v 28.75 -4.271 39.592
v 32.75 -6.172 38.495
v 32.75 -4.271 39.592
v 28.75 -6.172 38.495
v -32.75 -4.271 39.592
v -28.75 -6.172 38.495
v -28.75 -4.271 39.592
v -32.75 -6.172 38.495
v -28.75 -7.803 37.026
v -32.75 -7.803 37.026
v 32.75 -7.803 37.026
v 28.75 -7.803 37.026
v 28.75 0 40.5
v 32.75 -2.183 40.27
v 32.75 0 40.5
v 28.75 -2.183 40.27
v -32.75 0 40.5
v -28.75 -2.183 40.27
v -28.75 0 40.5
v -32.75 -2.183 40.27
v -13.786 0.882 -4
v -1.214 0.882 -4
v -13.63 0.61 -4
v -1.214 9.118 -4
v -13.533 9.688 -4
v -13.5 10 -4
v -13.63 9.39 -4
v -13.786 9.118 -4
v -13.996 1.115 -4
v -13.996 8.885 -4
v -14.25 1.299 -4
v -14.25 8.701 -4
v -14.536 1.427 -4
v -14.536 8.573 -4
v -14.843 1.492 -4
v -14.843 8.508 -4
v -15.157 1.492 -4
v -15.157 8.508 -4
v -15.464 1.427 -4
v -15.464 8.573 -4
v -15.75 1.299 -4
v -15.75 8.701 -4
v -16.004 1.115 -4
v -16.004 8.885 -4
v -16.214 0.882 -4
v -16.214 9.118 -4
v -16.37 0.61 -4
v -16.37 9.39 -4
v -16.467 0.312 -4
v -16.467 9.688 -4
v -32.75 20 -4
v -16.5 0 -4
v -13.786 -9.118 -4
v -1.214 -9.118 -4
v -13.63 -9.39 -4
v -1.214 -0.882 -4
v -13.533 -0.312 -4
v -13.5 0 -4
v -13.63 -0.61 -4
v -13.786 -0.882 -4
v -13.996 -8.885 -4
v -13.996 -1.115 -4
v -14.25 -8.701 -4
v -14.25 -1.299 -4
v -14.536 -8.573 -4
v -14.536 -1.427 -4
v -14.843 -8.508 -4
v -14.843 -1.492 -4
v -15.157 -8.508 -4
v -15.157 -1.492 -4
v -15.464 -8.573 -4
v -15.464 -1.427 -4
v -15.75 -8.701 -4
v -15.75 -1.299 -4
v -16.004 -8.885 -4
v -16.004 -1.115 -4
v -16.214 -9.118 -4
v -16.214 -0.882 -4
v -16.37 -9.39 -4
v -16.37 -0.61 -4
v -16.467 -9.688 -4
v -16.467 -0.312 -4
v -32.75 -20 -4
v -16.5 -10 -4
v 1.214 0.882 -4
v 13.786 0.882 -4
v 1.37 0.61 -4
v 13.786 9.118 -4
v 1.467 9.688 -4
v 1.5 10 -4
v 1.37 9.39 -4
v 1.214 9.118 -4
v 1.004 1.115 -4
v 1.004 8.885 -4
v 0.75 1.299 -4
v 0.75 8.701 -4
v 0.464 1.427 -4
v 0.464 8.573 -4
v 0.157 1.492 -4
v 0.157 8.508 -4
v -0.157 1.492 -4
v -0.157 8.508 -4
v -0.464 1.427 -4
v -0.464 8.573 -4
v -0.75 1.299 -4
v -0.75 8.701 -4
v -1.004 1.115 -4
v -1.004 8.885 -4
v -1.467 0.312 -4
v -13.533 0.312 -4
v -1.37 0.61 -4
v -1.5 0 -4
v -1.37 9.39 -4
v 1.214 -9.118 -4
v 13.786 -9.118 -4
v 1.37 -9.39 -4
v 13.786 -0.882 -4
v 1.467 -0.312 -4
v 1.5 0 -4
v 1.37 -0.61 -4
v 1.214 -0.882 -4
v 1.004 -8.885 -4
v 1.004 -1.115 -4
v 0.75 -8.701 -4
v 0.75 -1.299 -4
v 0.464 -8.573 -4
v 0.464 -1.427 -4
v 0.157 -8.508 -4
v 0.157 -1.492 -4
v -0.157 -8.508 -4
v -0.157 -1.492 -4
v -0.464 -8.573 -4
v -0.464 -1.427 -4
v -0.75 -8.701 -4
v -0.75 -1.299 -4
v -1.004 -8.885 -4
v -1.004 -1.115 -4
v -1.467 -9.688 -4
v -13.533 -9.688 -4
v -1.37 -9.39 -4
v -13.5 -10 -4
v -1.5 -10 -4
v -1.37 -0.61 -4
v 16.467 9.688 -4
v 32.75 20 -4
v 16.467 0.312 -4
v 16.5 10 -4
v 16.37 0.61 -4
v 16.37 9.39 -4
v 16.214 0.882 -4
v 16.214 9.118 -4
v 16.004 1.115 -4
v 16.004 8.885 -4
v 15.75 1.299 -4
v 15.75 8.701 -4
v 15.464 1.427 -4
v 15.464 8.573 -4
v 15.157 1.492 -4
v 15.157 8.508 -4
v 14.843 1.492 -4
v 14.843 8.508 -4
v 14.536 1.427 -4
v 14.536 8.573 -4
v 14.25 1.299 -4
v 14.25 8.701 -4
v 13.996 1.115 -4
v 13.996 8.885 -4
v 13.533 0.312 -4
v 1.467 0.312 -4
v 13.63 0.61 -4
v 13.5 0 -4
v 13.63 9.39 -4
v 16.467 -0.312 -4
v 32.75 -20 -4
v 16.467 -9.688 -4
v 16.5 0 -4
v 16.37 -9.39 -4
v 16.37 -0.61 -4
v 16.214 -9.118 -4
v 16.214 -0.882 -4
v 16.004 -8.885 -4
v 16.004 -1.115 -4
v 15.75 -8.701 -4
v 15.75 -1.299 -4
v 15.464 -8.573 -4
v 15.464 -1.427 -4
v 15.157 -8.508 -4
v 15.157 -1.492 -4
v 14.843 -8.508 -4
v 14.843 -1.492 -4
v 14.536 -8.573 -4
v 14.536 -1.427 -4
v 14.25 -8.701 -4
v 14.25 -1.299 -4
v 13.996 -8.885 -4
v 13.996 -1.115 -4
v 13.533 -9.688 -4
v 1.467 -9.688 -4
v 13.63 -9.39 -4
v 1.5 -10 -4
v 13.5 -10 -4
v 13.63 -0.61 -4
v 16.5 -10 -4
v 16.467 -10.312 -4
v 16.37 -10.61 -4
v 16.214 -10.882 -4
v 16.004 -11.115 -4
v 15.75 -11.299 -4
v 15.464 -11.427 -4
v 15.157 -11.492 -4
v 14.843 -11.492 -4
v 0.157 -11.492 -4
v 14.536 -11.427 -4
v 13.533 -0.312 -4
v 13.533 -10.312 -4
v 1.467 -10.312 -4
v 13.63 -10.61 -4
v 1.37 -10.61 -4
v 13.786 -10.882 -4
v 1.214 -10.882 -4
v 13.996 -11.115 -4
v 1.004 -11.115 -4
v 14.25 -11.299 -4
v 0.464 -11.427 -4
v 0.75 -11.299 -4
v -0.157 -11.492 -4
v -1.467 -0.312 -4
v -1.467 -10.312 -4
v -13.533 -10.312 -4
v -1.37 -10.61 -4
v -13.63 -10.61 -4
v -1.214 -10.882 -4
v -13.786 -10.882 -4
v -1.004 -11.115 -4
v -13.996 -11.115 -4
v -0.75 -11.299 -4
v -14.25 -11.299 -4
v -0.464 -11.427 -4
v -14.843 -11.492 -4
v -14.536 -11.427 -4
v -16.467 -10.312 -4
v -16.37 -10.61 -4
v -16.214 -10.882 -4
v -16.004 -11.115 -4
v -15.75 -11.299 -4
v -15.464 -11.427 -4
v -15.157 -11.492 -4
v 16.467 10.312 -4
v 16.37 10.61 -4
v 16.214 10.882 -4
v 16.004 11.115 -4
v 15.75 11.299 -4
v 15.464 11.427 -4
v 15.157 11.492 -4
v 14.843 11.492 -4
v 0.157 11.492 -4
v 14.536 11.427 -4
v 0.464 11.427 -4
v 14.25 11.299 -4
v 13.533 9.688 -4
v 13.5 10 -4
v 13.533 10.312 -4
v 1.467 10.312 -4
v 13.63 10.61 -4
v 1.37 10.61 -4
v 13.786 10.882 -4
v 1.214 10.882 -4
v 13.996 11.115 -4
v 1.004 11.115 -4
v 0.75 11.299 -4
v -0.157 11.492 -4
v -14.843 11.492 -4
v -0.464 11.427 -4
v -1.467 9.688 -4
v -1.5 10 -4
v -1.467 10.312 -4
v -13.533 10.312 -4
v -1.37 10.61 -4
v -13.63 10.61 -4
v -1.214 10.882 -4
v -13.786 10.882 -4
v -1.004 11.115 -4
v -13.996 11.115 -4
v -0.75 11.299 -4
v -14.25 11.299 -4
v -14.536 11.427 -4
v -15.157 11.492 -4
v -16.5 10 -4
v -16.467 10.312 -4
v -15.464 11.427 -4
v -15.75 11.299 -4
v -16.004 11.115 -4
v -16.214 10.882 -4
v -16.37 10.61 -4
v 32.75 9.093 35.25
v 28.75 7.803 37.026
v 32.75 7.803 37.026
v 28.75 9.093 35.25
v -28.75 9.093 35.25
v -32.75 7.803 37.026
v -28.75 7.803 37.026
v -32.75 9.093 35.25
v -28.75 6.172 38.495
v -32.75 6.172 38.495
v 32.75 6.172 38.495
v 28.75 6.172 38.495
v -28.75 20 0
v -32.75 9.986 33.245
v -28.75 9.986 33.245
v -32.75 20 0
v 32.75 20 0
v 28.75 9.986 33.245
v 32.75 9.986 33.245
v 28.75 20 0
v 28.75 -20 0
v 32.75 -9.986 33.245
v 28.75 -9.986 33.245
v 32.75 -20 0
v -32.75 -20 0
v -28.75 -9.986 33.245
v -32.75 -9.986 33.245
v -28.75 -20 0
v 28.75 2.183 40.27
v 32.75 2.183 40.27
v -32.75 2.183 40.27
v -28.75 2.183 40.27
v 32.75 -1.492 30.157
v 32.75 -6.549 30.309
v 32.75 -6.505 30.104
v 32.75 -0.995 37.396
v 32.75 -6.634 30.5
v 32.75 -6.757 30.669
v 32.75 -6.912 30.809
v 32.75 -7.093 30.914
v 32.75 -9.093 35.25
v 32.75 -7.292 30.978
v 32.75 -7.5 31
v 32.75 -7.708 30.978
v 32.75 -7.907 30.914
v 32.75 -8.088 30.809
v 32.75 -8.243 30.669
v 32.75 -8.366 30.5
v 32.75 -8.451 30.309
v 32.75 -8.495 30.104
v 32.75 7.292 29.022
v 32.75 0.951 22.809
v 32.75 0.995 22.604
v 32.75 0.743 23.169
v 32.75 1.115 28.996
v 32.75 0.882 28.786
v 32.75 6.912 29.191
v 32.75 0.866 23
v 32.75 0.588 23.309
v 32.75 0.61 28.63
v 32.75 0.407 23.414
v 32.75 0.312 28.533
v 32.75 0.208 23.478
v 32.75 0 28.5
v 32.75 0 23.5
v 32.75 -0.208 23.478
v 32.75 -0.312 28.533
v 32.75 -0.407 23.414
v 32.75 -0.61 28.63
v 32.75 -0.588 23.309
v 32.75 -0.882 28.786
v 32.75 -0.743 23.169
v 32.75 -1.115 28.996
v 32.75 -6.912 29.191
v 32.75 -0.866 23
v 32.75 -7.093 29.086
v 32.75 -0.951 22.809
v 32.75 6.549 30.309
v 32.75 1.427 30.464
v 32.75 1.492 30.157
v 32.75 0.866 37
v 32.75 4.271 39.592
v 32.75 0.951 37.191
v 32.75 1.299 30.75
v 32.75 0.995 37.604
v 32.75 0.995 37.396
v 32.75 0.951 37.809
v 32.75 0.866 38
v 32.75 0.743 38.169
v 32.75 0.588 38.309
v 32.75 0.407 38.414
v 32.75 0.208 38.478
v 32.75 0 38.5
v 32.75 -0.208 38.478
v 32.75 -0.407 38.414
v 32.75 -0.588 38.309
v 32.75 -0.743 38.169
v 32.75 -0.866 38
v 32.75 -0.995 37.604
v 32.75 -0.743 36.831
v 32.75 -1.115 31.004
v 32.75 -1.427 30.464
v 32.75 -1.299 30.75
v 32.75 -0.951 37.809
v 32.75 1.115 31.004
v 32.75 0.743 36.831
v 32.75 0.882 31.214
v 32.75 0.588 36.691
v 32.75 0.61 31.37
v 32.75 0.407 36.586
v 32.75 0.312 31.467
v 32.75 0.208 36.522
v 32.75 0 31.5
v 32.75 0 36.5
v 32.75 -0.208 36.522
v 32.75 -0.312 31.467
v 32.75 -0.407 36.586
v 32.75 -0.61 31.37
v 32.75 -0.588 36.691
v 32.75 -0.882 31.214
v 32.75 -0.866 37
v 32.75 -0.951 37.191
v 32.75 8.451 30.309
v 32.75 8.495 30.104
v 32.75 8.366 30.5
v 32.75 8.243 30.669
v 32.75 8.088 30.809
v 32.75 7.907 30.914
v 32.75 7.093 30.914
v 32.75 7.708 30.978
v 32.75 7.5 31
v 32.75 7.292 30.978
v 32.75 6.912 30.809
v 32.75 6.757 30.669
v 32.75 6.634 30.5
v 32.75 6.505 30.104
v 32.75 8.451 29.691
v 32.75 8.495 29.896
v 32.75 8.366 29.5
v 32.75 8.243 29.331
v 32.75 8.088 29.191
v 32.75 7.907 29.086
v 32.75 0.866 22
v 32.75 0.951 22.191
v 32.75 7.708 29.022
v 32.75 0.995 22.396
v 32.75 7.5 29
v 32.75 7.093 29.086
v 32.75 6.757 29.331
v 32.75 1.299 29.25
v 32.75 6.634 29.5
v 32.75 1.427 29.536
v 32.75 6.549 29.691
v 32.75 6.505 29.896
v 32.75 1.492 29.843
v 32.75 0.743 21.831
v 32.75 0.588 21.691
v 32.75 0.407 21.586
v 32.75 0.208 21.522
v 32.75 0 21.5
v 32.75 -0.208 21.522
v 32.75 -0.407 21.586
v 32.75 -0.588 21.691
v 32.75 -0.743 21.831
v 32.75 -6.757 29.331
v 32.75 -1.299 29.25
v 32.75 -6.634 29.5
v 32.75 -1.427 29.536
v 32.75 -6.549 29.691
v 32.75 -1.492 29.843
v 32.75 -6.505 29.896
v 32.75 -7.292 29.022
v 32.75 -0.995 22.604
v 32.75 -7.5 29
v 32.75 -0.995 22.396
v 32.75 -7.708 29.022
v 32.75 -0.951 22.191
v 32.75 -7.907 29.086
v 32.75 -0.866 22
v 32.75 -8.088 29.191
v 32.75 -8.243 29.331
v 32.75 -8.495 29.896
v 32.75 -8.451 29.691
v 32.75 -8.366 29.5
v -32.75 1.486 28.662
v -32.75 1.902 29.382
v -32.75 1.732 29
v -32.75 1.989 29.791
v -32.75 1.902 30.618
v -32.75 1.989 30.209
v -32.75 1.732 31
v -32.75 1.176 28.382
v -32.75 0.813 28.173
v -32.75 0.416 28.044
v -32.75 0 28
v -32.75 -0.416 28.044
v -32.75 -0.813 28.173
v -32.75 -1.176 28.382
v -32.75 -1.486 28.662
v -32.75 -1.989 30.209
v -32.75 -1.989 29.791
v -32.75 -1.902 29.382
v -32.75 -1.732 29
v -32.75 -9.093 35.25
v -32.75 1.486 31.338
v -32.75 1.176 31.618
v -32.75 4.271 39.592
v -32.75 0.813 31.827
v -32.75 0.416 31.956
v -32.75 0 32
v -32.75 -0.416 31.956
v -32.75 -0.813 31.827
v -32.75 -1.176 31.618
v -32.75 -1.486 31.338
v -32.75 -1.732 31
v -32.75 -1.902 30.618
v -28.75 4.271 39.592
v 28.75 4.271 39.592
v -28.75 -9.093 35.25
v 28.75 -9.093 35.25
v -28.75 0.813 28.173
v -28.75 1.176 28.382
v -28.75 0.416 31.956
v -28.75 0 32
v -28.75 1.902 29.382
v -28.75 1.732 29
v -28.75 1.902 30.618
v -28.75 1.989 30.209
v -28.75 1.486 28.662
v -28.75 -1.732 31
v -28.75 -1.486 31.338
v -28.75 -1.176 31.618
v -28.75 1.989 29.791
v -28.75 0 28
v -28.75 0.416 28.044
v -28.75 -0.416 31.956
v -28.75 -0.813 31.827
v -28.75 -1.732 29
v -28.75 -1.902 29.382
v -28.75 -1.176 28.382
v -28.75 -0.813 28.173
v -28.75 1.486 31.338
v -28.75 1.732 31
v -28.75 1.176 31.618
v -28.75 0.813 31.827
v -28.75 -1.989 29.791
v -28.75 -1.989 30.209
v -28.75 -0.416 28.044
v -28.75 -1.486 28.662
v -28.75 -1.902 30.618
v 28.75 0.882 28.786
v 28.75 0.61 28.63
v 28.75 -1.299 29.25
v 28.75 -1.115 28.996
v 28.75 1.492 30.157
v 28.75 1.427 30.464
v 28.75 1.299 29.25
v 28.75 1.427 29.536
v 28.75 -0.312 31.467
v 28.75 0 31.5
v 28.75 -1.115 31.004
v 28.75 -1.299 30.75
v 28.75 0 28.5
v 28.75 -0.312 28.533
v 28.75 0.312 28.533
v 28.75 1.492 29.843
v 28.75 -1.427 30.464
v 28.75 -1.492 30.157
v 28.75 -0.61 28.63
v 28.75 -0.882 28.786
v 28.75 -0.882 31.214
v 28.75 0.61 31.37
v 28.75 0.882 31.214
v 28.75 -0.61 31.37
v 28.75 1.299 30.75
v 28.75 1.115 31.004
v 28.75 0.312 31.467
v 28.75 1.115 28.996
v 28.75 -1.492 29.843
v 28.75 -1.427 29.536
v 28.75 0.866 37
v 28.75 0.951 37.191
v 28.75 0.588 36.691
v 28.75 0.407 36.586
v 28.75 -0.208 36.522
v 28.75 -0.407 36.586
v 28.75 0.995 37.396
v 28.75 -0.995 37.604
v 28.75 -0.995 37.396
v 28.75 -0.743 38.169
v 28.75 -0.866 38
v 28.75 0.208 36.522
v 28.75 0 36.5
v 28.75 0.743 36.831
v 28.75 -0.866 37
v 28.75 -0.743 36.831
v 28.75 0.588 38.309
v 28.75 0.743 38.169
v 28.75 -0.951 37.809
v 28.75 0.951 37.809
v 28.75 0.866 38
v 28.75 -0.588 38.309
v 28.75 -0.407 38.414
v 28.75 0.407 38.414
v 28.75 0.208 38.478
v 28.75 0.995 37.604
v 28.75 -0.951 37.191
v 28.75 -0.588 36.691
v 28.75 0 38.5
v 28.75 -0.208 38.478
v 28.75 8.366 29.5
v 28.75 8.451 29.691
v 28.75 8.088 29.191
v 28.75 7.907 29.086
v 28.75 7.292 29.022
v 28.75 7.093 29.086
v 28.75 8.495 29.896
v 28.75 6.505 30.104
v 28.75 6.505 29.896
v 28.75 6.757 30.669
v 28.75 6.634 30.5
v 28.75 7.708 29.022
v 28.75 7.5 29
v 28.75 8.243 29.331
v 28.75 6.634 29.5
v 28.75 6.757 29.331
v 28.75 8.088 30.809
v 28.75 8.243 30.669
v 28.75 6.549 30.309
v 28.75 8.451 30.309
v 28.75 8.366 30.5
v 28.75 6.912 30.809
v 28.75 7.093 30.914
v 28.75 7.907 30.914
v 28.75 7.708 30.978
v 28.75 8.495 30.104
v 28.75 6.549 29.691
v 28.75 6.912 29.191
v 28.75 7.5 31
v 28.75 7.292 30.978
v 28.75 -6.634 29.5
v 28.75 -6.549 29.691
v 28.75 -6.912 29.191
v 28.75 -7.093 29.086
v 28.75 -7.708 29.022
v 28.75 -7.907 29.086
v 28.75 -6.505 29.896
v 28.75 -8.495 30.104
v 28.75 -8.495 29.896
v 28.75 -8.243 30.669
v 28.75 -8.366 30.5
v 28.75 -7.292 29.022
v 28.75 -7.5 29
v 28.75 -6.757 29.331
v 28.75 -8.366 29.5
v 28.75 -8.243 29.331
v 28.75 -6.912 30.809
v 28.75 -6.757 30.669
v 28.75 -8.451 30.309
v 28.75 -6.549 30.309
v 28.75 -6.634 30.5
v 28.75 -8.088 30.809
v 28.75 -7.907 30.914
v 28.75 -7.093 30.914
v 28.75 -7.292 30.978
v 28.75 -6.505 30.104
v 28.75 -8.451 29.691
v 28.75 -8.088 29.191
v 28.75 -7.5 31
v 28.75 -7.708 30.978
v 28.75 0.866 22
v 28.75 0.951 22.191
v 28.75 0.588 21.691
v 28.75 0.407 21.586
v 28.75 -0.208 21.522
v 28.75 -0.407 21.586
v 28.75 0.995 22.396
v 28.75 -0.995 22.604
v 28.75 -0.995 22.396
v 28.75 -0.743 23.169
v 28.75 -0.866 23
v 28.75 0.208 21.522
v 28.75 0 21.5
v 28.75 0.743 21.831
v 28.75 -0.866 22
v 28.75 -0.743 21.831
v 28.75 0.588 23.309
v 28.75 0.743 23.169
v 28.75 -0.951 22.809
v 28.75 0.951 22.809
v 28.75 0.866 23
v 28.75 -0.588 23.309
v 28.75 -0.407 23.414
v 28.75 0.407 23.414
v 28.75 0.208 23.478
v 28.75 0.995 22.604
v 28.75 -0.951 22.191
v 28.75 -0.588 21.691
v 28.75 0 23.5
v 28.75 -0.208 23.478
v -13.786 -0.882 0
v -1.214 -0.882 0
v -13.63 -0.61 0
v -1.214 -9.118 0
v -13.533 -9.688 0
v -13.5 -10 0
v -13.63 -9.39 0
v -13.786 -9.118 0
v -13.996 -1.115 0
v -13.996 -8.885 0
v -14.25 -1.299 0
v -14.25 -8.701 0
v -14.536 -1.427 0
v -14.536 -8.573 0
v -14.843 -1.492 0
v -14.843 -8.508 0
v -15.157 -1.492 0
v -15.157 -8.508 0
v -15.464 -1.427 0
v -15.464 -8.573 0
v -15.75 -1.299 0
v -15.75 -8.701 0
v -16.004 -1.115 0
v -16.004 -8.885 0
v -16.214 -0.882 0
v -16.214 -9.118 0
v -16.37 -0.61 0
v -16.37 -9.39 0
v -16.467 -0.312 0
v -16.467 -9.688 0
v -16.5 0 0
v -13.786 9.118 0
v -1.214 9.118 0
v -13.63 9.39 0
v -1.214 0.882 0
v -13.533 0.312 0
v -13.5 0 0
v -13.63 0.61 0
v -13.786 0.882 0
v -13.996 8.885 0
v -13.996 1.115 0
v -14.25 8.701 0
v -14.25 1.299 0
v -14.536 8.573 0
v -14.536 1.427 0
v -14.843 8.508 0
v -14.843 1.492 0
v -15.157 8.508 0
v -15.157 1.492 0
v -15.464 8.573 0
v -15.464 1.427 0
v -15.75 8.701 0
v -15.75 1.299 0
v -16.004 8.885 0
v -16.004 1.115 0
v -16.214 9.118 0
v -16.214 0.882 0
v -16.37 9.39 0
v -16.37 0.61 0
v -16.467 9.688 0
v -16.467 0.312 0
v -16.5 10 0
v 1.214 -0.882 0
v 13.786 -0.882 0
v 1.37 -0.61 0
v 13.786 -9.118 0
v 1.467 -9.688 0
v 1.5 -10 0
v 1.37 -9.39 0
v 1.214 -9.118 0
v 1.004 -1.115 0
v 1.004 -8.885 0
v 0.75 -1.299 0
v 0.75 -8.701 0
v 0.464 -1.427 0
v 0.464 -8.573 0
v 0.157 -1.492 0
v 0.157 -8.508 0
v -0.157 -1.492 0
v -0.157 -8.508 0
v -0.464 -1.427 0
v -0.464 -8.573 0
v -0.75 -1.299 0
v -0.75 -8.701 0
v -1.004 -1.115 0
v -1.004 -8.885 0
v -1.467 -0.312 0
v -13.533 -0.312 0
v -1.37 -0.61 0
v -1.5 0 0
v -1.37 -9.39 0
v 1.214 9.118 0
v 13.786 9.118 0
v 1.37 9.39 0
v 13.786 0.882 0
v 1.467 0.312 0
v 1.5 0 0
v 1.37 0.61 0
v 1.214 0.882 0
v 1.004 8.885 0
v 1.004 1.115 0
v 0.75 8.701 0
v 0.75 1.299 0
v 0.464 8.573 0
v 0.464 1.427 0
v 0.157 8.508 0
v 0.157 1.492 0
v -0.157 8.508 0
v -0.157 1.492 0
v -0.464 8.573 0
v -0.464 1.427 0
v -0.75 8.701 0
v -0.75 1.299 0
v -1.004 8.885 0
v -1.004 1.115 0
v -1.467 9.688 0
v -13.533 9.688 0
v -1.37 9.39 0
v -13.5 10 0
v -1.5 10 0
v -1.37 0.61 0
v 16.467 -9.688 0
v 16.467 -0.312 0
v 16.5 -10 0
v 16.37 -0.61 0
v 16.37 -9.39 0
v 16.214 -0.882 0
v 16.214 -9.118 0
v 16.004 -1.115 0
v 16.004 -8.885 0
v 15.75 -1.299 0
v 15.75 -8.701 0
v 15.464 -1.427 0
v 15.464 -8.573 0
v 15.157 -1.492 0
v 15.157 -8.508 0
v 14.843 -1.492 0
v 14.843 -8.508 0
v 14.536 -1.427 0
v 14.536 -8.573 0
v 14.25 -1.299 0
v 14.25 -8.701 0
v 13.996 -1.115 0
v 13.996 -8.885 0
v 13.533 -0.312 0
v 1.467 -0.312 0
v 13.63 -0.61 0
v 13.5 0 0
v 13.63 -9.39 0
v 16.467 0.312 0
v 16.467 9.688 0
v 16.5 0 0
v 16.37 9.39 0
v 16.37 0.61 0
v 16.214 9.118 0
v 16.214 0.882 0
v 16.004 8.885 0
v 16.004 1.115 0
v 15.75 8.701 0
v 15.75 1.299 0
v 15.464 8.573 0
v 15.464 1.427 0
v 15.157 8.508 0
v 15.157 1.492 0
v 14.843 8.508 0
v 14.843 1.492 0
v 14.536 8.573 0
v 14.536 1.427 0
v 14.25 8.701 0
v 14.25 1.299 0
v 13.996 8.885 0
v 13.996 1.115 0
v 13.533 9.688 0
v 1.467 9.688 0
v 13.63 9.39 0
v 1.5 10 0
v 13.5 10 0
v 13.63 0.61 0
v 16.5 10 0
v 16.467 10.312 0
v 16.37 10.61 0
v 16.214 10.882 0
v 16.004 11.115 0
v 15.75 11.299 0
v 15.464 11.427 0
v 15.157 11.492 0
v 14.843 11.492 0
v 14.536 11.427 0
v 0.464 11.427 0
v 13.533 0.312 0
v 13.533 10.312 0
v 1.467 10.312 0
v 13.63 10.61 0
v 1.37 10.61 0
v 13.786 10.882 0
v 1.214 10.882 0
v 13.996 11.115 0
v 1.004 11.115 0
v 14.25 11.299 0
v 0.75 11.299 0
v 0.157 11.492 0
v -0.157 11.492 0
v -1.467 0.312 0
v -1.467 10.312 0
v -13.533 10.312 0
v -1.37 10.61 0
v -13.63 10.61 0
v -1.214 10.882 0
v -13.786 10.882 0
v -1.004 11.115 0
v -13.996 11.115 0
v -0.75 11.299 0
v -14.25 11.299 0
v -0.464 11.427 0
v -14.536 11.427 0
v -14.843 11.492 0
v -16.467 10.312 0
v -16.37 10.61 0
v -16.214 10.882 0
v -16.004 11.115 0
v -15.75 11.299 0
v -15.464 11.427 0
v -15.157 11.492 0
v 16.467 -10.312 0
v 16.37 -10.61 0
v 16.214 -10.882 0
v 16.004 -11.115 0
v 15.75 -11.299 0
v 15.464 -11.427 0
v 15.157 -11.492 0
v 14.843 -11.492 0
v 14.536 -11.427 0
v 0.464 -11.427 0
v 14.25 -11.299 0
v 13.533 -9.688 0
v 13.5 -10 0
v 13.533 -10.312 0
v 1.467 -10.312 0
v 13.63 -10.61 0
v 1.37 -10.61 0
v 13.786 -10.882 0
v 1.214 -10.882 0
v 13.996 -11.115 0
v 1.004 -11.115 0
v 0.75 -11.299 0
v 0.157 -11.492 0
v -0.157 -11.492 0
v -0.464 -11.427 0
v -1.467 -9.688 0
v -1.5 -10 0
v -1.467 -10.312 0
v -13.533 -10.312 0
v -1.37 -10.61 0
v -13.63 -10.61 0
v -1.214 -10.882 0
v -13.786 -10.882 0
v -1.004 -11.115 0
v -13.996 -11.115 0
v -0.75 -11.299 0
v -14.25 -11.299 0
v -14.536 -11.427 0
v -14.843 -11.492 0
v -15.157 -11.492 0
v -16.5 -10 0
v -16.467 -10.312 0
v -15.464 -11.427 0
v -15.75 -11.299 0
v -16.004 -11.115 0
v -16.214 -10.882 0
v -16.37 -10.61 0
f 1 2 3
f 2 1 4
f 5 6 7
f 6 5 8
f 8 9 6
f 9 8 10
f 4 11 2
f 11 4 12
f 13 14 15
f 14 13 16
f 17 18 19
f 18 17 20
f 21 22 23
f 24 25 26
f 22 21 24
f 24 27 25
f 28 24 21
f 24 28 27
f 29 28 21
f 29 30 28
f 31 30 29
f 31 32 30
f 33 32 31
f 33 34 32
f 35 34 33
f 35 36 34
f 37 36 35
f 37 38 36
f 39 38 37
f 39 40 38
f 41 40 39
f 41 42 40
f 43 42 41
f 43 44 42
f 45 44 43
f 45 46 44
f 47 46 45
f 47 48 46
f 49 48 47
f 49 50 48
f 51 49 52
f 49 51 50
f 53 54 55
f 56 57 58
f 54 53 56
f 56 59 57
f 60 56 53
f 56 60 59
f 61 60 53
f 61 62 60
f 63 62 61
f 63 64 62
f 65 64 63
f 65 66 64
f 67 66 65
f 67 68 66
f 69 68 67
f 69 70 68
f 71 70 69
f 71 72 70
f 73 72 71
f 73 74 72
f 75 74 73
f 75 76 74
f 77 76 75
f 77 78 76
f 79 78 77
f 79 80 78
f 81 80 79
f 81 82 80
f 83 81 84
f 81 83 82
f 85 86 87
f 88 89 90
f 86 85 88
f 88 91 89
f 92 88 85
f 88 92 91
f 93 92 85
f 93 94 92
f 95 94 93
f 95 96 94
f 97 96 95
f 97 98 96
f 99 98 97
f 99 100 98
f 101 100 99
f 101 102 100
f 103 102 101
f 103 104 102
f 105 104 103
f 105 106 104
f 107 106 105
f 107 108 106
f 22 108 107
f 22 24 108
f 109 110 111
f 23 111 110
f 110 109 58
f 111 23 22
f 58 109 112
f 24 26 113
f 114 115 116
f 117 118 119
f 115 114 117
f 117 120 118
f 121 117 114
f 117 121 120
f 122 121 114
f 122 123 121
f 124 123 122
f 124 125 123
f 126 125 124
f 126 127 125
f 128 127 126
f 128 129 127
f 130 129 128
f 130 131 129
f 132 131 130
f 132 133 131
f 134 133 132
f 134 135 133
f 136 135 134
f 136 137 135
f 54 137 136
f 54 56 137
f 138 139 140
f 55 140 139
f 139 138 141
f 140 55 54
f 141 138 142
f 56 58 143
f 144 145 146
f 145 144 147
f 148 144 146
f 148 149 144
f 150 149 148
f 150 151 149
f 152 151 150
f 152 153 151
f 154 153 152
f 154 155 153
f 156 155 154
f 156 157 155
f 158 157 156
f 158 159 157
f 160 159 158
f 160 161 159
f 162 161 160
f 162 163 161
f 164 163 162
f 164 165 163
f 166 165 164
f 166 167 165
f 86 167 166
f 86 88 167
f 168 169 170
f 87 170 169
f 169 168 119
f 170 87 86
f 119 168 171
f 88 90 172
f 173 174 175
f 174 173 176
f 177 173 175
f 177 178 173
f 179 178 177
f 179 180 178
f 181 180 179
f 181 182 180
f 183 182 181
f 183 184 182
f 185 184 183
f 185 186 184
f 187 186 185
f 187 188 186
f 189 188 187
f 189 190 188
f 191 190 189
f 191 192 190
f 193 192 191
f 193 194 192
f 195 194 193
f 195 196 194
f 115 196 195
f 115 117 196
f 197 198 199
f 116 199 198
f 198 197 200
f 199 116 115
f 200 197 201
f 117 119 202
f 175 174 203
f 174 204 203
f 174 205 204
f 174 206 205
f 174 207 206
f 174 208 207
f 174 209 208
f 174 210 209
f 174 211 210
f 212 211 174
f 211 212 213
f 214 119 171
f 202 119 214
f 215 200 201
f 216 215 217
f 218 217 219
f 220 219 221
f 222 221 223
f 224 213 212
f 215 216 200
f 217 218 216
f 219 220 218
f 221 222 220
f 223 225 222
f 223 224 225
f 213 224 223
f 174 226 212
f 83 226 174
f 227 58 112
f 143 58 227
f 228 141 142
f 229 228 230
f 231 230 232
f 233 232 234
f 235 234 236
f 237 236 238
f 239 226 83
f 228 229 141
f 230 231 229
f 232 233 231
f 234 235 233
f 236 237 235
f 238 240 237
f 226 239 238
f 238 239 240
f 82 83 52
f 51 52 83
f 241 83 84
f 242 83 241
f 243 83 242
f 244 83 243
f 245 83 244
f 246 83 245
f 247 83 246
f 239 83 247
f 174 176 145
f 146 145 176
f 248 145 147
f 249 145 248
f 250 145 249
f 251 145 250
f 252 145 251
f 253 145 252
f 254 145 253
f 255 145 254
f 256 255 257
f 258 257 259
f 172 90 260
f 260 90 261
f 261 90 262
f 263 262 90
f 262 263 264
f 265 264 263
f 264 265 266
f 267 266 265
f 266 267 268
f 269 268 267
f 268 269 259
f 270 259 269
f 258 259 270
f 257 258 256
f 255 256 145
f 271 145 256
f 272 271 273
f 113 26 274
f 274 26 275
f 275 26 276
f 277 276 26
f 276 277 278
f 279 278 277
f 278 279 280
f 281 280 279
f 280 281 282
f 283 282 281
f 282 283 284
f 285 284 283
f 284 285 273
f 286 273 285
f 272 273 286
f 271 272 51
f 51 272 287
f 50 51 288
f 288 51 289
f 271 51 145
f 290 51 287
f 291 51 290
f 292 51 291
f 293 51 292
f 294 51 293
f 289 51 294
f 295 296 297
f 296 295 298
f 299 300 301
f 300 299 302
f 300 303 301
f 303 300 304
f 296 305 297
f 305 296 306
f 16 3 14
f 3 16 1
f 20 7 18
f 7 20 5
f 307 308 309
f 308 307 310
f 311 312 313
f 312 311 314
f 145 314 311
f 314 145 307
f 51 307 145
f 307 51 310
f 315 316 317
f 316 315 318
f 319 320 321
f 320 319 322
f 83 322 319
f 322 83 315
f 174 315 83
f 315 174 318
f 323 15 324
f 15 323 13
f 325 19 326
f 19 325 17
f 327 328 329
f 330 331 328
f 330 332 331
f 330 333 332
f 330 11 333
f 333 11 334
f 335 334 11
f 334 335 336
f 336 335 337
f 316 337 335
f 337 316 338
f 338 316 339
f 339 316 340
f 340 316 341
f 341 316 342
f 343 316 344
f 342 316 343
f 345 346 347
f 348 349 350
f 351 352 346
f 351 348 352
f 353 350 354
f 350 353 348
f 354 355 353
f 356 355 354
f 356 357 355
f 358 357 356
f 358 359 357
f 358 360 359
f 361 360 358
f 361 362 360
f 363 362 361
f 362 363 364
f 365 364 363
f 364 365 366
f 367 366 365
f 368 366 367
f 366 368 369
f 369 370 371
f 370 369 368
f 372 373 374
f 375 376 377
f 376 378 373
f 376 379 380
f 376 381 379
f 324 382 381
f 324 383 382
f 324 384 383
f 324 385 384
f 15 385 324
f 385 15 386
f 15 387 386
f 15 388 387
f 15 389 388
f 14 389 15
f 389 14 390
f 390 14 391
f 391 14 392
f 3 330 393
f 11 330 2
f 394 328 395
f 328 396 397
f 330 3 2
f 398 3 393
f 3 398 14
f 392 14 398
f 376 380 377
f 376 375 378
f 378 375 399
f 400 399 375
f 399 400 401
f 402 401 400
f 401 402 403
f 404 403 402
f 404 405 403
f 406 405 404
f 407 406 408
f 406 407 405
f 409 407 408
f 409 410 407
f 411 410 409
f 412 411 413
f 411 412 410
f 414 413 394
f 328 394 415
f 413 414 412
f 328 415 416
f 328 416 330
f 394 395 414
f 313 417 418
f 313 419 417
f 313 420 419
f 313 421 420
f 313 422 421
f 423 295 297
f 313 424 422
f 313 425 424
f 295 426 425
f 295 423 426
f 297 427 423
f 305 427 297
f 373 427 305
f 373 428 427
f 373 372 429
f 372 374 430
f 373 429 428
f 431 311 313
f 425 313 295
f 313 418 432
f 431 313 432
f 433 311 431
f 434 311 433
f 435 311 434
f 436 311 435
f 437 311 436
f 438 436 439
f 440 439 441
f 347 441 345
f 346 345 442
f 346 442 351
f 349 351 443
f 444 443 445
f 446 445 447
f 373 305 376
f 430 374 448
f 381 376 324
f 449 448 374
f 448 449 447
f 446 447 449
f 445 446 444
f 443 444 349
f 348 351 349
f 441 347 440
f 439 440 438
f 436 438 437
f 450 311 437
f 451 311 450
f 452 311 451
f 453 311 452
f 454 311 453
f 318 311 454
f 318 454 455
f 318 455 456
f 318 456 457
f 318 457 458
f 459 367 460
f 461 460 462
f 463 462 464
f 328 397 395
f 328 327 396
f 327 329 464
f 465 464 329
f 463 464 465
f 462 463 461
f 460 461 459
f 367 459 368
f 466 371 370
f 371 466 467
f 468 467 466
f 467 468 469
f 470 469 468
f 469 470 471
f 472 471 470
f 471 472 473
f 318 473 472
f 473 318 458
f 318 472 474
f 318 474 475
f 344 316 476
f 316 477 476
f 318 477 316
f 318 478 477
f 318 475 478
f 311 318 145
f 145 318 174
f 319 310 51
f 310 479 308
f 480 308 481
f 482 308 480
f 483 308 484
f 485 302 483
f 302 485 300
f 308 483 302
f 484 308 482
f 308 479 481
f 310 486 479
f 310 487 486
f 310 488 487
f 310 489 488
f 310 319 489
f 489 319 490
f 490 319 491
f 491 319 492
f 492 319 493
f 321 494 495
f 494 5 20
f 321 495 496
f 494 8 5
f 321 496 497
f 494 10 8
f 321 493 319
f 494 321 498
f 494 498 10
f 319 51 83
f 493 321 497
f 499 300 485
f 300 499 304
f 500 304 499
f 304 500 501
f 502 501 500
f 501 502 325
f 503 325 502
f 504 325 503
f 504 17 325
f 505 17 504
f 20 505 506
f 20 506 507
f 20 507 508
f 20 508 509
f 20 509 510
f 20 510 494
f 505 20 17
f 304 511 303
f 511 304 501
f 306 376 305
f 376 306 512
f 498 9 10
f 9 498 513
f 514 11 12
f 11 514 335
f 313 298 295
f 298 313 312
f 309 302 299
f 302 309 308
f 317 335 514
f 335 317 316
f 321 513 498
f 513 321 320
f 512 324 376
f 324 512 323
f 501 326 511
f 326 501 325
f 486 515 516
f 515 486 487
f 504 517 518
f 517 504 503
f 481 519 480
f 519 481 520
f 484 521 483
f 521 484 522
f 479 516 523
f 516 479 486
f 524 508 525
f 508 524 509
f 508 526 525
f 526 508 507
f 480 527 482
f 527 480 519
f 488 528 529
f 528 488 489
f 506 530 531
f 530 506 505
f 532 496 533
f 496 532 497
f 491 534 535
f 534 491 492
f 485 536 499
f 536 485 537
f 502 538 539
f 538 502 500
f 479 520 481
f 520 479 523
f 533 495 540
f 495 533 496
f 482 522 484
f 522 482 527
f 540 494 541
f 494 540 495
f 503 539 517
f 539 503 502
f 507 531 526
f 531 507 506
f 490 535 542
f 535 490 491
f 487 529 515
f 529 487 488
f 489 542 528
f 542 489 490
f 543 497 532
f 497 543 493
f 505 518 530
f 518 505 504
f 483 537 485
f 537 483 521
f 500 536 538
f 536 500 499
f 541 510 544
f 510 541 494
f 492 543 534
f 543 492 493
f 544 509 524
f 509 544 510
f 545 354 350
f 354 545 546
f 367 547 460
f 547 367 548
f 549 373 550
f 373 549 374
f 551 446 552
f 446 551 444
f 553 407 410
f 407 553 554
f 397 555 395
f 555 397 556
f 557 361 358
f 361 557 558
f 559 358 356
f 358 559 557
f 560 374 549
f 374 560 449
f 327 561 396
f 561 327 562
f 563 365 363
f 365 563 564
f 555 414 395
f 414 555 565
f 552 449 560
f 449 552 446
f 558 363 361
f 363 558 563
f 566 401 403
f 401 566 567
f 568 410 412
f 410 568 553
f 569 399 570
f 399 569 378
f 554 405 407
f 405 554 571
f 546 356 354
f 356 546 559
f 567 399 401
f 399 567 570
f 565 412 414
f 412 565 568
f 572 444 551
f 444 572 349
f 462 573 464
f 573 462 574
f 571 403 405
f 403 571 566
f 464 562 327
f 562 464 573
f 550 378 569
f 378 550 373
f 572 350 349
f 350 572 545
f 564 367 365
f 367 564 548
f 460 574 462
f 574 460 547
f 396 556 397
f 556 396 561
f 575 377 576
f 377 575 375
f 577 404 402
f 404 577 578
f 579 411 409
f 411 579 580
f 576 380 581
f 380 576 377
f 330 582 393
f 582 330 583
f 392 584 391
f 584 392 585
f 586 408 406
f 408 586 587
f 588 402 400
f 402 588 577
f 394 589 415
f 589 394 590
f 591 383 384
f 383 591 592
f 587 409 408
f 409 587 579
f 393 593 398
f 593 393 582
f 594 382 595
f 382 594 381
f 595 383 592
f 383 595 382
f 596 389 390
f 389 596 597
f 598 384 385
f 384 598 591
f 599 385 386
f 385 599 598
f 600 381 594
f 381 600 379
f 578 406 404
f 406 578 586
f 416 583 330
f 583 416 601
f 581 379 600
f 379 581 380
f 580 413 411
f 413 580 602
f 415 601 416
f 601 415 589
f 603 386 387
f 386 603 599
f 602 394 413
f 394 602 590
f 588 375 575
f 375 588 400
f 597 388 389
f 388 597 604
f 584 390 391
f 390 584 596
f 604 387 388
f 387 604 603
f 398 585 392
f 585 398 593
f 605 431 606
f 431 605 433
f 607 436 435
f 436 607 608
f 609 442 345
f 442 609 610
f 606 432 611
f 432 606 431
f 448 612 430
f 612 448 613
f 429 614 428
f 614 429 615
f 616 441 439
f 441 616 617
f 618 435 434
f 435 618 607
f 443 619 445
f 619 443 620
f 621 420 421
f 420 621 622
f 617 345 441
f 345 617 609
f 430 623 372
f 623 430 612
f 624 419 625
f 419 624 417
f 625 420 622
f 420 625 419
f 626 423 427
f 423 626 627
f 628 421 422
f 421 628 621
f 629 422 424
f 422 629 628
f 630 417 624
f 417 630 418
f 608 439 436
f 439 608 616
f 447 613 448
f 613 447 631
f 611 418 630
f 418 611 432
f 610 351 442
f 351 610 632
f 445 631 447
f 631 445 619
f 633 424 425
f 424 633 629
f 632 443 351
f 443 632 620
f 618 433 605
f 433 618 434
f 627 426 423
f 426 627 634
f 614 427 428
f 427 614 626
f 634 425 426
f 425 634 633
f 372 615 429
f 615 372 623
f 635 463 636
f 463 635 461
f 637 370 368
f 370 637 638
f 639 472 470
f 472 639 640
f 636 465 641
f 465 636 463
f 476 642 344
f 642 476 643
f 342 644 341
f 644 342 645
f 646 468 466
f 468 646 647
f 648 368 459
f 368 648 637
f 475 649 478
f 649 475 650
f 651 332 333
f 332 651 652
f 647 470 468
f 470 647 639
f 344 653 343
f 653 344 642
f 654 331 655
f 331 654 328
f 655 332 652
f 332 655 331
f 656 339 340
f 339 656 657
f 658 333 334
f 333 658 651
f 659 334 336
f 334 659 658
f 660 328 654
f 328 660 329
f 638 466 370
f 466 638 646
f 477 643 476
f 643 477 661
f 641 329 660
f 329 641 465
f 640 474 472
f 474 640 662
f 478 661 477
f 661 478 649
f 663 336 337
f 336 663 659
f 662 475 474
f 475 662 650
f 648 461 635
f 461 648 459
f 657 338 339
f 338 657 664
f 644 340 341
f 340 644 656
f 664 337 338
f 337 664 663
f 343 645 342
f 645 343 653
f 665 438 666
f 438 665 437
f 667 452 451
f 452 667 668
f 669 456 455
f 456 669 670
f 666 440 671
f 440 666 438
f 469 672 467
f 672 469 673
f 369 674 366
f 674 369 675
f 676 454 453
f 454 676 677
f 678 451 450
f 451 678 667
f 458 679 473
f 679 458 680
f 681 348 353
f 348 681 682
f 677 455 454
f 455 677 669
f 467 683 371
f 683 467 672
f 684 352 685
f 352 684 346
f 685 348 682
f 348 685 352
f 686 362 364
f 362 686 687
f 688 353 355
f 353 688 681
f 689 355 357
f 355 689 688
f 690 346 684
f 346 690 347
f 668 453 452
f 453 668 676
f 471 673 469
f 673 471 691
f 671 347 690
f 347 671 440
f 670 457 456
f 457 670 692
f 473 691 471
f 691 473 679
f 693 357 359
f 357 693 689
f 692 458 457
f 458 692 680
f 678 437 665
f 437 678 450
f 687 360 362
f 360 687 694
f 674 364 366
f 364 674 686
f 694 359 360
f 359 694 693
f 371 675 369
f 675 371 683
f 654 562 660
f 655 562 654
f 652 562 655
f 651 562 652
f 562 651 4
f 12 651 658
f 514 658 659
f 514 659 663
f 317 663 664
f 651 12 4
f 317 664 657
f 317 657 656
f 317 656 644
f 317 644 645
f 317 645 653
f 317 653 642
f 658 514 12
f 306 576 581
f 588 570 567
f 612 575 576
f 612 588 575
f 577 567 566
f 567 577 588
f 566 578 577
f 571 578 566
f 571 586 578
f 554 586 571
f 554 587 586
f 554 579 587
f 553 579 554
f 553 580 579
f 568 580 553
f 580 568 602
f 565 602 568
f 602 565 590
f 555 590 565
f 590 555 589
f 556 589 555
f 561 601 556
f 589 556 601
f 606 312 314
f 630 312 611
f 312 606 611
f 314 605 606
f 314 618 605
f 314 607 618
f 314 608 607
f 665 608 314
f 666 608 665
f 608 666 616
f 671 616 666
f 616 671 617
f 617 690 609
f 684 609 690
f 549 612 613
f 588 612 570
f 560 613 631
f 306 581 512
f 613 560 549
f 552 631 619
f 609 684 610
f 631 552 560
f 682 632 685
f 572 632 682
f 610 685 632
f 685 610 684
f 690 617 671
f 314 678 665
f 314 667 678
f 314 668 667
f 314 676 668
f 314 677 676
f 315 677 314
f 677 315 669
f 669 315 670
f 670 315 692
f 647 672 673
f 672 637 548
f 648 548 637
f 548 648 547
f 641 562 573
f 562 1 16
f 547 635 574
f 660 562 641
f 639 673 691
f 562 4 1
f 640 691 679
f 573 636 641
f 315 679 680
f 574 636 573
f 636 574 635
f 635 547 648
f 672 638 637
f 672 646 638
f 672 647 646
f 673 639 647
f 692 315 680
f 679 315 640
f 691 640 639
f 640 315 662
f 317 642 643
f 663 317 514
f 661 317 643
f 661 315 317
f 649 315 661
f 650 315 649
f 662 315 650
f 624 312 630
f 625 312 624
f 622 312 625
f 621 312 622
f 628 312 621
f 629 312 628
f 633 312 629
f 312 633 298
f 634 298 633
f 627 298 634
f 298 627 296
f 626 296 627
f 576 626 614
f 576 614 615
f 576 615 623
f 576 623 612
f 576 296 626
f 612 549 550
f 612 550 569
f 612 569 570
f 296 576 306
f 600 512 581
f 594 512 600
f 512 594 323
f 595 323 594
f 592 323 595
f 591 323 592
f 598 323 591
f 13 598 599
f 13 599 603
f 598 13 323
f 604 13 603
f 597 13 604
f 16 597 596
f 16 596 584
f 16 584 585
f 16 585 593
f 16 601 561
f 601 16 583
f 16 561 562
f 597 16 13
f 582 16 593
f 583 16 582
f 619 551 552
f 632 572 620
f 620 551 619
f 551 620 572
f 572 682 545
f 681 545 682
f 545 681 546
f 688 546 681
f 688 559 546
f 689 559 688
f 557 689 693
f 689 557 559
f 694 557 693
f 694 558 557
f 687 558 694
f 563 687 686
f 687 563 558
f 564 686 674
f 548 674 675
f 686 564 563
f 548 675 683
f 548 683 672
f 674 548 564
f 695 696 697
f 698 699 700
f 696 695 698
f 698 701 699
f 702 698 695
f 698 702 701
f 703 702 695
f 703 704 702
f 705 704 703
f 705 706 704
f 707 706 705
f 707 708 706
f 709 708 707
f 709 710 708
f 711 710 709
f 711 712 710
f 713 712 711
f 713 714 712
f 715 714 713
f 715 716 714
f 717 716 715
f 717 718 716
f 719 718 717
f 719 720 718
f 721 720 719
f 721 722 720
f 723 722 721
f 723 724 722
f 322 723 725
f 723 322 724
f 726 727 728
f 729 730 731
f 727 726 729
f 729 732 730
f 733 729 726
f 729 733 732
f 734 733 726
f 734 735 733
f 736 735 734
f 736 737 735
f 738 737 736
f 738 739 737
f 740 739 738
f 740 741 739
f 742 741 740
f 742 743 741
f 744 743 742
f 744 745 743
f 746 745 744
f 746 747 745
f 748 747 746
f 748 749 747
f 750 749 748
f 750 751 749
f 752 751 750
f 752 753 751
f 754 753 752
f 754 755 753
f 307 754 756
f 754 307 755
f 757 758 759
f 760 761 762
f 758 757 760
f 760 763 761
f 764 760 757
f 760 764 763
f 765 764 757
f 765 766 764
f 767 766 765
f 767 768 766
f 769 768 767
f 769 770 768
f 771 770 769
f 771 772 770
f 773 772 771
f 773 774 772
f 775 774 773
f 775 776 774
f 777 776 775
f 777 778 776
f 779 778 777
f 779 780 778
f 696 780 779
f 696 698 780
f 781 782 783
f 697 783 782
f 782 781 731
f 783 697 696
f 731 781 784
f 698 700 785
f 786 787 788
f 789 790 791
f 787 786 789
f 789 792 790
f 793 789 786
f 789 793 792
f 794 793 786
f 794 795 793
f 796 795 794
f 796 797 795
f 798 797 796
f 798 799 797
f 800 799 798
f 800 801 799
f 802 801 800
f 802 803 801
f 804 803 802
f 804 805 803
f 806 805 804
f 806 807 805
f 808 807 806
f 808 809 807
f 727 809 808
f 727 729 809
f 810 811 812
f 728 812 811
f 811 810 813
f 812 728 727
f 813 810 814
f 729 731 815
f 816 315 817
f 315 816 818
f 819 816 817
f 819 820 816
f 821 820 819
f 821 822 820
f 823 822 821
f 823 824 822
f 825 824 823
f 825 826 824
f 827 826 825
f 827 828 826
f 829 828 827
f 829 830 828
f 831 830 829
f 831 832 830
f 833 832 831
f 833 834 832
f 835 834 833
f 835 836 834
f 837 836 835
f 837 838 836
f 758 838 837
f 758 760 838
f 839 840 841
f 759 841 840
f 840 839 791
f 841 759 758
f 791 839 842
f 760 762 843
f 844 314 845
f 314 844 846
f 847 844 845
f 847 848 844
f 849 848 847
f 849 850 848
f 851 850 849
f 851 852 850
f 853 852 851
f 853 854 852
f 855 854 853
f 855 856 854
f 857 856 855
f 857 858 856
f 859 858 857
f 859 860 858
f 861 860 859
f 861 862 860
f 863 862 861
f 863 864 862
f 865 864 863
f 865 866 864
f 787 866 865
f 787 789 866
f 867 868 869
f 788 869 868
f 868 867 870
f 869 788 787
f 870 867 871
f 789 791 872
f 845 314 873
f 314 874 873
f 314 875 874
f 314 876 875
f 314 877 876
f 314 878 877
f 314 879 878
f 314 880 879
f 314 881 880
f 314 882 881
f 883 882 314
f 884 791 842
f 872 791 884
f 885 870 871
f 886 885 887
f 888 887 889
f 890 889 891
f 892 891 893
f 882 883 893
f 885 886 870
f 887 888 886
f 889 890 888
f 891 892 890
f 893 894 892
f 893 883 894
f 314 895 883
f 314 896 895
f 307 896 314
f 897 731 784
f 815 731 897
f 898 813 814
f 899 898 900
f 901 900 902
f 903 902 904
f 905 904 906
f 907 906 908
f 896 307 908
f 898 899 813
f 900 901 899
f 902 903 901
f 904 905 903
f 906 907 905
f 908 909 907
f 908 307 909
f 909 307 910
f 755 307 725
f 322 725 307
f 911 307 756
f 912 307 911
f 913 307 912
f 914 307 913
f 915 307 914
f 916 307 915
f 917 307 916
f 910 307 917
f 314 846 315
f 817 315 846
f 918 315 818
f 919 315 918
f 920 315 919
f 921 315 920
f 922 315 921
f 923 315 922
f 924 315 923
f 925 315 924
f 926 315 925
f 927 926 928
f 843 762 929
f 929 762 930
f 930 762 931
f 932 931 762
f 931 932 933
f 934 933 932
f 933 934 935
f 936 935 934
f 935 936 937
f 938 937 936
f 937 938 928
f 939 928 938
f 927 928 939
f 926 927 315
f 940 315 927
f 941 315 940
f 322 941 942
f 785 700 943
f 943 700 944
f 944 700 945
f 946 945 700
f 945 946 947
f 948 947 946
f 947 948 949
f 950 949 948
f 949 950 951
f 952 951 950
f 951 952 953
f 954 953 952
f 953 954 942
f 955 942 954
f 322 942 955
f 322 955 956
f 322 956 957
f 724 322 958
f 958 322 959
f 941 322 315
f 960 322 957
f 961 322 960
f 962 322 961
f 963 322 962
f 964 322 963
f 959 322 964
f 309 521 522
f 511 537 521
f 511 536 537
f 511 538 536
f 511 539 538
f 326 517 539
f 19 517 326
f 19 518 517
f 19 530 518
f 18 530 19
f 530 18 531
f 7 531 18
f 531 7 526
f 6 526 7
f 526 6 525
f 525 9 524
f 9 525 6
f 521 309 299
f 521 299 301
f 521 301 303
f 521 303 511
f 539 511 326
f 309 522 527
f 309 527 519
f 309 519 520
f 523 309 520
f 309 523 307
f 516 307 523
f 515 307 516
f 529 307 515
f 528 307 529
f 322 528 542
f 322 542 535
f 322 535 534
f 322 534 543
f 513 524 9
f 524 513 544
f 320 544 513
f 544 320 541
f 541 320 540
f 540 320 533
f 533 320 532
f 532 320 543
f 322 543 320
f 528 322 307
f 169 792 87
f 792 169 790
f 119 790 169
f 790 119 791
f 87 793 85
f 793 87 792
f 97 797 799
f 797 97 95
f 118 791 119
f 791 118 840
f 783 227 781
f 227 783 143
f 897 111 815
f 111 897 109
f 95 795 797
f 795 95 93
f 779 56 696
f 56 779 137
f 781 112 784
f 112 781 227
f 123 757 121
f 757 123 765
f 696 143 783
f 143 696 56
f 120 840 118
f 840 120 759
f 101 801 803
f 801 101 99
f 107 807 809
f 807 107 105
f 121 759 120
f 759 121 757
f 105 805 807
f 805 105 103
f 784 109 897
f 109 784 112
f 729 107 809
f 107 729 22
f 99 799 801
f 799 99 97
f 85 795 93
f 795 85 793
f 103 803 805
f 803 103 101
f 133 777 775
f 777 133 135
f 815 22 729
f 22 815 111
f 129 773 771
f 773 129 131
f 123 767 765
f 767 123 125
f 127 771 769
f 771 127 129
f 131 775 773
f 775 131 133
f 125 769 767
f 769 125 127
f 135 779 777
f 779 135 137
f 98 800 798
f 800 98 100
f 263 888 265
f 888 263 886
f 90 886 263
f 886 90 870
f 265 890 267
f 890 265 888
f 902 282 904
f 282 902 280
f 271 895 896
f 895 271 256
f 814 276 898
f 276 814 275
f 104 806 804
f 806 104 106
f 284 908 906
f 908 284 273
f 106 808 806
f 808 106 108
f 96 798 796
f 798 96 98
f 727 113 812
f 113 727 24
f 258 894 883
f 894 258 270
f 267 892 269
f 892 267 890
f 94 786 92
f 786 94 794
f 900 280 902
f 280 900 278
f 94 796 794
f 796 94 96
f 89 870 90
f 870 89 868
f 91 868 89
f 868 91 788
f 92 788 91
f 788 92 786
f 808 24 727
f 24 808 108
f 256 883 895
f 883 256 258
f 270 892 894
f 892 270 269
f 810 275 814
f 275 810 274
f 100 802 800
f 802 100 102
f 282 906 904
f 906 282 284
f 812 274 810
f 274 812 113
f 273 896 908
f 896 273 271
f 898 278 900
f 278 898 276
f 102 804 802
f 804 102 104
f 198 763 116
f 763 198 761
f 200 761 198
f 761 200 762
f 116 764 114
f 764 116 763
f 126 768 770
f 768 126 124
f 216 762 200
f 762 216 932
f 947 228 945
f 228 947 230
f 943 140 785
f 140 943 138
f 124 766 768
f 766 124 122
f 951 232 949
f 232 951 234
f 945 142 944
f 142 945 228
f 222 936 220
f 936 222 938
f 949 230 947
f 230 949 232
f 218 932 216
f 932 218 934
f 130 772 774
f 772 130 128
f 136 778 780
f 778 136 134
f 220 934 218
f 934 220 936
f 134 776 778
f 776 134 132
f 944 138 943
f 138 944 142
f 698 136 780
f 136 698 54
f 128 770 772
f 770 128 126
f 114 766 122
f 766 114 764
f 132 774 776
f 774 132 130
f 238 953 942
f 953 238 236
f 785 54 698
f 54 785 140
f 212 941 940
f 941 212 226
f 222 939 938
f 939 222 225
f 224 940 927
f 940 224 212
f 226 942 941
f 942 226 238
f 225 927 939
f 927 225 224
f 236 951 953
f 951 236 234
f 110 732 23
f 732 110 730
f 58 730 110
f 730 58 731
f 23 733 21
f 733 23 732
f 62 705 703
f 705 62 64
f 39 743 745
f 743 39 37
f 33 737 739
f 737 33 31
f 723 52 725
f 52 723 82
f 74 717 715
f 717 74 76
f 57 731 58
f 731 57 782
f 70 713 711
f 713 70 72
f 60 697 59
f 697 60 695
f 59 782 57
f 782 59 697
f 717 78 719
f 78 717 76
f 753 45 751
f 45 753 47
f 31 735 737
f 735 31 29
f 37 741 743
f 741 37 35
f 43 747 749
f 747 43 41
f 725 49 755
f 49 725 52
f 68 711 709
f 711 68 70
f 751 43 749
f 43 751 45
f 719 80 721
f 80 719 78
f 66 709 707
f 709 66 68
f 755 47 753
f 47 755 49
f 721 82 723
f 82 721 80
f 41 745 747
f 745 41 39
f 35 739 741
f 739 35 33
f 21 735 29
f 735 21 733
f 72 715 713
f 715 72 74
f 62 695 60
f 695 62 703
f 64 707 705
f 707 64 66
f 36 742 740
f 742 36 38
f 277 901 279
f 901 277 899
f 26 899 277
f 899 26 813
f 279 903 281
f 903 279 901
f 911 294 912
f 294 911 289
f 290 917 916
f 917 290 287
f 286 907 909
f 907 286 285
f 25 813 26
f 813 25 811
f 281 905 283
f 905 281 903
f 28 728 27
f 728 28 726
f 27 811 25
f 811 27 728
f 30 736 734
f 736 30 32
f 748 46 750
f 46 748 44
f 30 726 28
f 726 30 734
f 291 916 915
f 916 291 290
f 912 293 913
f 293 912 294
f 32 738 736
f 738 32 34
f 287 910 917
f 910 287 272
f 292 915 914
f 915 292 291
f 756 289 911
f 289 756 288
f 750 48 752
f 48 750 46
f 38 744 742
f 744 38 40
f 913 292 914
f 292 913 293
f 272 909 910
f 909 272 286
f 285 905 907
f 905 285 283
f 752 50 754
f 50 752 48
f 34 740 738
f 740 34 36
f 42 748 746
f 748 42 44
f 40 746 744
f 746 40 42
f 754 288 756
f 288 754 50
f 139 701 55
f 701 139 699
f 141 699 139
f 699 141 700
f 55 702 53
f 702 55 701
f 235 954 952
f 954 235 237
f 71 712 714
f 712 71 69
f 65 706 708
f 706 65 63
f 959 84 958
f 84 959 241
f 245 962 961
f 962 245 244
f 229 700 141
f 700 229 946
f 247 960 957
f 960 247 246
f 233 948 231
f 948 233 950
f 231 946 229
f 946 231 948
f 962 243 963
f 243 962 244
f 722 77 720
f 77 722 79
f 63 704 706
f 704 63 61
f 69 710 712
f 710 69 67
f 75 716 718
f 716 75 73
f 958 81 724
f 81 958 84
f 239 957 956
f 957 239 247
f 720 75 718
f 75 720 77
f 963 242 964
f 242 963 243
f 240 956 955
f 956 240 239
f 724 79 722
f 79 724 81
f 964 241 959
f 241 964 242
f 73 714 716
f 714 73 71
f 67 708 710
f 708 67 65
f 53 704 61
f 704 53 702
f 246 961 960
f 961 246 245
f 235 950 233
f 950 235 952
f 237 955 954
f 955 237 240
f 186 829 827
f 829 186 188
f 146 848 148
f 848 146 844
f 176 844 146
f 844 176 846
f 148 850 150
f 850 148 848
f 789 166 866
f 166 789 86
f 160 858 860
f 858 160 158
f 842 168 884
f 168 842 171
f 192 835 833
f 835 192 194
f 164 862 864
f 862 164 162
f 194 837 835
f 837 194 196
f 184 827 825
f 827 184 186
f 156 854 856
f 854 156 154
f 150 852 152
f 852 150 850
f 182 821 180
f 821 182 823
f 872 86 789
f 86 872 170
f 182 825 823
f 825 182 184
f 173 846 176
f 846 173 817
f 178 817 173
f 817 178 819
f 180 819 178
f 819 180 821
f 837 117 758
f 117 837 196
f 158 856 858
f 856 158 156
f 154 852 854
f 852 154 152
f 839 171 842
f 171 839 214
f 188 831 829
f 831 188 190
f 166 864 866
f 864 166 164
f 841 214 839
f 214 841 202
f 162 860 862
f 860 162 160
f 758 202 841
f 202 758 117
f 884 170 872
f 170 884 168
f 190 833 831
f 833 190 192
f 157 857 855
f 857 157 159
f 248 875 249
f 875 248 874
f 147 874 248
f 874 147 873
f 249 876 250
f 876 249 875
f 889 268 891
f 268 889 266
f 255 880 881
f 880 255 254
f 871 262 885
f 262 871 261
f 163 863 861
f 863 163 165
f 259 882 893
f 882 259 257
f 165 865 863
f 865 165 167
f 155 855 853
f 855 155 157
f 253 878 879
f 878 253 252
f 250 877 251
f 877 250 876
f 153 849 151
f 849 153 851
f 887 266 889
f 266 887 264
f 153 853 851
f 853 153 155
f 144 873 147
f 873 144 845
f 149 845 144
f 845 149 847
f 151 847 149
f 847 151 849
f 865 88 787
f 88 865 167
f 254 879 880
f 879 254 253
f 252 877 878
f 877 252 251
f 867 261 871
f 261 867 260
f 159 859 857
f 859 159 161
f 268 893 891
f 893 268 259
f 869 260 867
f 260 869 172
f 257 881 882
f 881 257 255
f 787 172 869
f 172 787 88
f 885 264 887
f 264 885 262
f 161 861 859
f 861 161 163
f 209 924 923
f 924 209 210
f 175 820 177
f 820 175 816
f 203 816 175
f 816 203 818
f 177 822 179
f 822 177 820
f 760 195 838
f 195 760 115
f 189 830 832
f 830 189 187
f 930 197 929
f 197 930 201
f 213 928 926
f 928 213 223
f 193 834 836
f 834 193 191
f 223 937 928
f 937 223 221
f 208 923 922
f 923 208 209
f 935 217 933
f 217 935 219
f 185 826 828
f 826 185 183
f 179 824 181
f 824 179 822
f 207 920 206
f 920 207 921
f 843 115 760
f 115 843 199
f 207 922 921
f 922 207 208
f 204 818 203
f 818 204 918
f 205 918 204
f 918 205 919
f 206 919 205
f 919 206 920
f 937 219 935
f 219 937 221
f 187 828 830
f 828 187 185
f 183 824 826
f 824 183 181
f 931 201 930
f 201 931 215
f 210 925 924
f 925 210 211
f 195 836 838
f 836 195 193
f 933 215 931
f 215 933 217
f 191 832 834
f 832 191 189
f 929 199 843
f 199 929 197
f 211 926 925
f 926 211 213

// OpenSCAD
l = 40.0;
b = 57.5;
d = 4.0;


bout = b + 2*d;

difference(){
  hull() {
    translate([-bout/2,-l/2,-d])cube([bout,l,d]);
    translate([-bout/2,0,30])rotate([0,90,0])cylinder(h=bout, r=10.5,$fn=30);
  }
 
  translate([-bout/2-1,0,30])rotate([0,90,0])cylinder(h=20, r=2.0,$fn=30);
  translate([ bout/2+1-20,0,30])rotate([0,90,0])cylinder(h=20, r=1.5,$fn=30);
  
  translate([ bout/2+1-20,0,30+7.5])rotate([0,90,0])cylinder(h=20, r=1,$fn=30);
  translate([ bout/2+1-20,+7.5,30])rotate([0,90,0])cylinder(h=20, r=1,$fn=30);
  translate([ bout/2+1-20,-7.5,30])rotate([0,90,0])cylinder(h=20, r=1,$fn=30);
  translate([ bout/2+1-20,0,30-7.5])rotate([0,90,0])cylinder(h=20, r=1,$fn=30);
  
  translate([-b/2,-l/2,0])cube([b,l,60]);
  
  translate([ 0,0,-5])rotate([0,0,0])cylinder(h=20, r=1.5,$fn=30);
  translate([ 0,10,-5])rotate([0,0,0])cylinder(h=20, r=1.5,$fn=30);
  translate([ 0,-10,-5])rotate([0,0,0])cylinder(h=20, r=1.5,$fn=30);
  
  translate([ -15,0,-5])rotate([0,0,0])cylinder(h=20, r=1.5,$fn=30);
  translate([ -15,10,-5])rotate([0,0,0])cylinder(h=20, r=1.5,$fn=30);
  translate([ -15,-10,-5])rotate([0,0,0])cylinder(h=20, r=1.5,$fn=30);
  
  translate([ 15,0,-5])rotate([0,0,0])cylinder(h=20, r=1.5,$fn=30);
  translate([ 15,10,-5])rotate([0,0,0])cylinder(h=20, r=1.5,$fn=30);
  translate([ 15,-10,-5])rotate([0,0,0])cylinder(h=20, r=1.5,$fn=30);
  
}
